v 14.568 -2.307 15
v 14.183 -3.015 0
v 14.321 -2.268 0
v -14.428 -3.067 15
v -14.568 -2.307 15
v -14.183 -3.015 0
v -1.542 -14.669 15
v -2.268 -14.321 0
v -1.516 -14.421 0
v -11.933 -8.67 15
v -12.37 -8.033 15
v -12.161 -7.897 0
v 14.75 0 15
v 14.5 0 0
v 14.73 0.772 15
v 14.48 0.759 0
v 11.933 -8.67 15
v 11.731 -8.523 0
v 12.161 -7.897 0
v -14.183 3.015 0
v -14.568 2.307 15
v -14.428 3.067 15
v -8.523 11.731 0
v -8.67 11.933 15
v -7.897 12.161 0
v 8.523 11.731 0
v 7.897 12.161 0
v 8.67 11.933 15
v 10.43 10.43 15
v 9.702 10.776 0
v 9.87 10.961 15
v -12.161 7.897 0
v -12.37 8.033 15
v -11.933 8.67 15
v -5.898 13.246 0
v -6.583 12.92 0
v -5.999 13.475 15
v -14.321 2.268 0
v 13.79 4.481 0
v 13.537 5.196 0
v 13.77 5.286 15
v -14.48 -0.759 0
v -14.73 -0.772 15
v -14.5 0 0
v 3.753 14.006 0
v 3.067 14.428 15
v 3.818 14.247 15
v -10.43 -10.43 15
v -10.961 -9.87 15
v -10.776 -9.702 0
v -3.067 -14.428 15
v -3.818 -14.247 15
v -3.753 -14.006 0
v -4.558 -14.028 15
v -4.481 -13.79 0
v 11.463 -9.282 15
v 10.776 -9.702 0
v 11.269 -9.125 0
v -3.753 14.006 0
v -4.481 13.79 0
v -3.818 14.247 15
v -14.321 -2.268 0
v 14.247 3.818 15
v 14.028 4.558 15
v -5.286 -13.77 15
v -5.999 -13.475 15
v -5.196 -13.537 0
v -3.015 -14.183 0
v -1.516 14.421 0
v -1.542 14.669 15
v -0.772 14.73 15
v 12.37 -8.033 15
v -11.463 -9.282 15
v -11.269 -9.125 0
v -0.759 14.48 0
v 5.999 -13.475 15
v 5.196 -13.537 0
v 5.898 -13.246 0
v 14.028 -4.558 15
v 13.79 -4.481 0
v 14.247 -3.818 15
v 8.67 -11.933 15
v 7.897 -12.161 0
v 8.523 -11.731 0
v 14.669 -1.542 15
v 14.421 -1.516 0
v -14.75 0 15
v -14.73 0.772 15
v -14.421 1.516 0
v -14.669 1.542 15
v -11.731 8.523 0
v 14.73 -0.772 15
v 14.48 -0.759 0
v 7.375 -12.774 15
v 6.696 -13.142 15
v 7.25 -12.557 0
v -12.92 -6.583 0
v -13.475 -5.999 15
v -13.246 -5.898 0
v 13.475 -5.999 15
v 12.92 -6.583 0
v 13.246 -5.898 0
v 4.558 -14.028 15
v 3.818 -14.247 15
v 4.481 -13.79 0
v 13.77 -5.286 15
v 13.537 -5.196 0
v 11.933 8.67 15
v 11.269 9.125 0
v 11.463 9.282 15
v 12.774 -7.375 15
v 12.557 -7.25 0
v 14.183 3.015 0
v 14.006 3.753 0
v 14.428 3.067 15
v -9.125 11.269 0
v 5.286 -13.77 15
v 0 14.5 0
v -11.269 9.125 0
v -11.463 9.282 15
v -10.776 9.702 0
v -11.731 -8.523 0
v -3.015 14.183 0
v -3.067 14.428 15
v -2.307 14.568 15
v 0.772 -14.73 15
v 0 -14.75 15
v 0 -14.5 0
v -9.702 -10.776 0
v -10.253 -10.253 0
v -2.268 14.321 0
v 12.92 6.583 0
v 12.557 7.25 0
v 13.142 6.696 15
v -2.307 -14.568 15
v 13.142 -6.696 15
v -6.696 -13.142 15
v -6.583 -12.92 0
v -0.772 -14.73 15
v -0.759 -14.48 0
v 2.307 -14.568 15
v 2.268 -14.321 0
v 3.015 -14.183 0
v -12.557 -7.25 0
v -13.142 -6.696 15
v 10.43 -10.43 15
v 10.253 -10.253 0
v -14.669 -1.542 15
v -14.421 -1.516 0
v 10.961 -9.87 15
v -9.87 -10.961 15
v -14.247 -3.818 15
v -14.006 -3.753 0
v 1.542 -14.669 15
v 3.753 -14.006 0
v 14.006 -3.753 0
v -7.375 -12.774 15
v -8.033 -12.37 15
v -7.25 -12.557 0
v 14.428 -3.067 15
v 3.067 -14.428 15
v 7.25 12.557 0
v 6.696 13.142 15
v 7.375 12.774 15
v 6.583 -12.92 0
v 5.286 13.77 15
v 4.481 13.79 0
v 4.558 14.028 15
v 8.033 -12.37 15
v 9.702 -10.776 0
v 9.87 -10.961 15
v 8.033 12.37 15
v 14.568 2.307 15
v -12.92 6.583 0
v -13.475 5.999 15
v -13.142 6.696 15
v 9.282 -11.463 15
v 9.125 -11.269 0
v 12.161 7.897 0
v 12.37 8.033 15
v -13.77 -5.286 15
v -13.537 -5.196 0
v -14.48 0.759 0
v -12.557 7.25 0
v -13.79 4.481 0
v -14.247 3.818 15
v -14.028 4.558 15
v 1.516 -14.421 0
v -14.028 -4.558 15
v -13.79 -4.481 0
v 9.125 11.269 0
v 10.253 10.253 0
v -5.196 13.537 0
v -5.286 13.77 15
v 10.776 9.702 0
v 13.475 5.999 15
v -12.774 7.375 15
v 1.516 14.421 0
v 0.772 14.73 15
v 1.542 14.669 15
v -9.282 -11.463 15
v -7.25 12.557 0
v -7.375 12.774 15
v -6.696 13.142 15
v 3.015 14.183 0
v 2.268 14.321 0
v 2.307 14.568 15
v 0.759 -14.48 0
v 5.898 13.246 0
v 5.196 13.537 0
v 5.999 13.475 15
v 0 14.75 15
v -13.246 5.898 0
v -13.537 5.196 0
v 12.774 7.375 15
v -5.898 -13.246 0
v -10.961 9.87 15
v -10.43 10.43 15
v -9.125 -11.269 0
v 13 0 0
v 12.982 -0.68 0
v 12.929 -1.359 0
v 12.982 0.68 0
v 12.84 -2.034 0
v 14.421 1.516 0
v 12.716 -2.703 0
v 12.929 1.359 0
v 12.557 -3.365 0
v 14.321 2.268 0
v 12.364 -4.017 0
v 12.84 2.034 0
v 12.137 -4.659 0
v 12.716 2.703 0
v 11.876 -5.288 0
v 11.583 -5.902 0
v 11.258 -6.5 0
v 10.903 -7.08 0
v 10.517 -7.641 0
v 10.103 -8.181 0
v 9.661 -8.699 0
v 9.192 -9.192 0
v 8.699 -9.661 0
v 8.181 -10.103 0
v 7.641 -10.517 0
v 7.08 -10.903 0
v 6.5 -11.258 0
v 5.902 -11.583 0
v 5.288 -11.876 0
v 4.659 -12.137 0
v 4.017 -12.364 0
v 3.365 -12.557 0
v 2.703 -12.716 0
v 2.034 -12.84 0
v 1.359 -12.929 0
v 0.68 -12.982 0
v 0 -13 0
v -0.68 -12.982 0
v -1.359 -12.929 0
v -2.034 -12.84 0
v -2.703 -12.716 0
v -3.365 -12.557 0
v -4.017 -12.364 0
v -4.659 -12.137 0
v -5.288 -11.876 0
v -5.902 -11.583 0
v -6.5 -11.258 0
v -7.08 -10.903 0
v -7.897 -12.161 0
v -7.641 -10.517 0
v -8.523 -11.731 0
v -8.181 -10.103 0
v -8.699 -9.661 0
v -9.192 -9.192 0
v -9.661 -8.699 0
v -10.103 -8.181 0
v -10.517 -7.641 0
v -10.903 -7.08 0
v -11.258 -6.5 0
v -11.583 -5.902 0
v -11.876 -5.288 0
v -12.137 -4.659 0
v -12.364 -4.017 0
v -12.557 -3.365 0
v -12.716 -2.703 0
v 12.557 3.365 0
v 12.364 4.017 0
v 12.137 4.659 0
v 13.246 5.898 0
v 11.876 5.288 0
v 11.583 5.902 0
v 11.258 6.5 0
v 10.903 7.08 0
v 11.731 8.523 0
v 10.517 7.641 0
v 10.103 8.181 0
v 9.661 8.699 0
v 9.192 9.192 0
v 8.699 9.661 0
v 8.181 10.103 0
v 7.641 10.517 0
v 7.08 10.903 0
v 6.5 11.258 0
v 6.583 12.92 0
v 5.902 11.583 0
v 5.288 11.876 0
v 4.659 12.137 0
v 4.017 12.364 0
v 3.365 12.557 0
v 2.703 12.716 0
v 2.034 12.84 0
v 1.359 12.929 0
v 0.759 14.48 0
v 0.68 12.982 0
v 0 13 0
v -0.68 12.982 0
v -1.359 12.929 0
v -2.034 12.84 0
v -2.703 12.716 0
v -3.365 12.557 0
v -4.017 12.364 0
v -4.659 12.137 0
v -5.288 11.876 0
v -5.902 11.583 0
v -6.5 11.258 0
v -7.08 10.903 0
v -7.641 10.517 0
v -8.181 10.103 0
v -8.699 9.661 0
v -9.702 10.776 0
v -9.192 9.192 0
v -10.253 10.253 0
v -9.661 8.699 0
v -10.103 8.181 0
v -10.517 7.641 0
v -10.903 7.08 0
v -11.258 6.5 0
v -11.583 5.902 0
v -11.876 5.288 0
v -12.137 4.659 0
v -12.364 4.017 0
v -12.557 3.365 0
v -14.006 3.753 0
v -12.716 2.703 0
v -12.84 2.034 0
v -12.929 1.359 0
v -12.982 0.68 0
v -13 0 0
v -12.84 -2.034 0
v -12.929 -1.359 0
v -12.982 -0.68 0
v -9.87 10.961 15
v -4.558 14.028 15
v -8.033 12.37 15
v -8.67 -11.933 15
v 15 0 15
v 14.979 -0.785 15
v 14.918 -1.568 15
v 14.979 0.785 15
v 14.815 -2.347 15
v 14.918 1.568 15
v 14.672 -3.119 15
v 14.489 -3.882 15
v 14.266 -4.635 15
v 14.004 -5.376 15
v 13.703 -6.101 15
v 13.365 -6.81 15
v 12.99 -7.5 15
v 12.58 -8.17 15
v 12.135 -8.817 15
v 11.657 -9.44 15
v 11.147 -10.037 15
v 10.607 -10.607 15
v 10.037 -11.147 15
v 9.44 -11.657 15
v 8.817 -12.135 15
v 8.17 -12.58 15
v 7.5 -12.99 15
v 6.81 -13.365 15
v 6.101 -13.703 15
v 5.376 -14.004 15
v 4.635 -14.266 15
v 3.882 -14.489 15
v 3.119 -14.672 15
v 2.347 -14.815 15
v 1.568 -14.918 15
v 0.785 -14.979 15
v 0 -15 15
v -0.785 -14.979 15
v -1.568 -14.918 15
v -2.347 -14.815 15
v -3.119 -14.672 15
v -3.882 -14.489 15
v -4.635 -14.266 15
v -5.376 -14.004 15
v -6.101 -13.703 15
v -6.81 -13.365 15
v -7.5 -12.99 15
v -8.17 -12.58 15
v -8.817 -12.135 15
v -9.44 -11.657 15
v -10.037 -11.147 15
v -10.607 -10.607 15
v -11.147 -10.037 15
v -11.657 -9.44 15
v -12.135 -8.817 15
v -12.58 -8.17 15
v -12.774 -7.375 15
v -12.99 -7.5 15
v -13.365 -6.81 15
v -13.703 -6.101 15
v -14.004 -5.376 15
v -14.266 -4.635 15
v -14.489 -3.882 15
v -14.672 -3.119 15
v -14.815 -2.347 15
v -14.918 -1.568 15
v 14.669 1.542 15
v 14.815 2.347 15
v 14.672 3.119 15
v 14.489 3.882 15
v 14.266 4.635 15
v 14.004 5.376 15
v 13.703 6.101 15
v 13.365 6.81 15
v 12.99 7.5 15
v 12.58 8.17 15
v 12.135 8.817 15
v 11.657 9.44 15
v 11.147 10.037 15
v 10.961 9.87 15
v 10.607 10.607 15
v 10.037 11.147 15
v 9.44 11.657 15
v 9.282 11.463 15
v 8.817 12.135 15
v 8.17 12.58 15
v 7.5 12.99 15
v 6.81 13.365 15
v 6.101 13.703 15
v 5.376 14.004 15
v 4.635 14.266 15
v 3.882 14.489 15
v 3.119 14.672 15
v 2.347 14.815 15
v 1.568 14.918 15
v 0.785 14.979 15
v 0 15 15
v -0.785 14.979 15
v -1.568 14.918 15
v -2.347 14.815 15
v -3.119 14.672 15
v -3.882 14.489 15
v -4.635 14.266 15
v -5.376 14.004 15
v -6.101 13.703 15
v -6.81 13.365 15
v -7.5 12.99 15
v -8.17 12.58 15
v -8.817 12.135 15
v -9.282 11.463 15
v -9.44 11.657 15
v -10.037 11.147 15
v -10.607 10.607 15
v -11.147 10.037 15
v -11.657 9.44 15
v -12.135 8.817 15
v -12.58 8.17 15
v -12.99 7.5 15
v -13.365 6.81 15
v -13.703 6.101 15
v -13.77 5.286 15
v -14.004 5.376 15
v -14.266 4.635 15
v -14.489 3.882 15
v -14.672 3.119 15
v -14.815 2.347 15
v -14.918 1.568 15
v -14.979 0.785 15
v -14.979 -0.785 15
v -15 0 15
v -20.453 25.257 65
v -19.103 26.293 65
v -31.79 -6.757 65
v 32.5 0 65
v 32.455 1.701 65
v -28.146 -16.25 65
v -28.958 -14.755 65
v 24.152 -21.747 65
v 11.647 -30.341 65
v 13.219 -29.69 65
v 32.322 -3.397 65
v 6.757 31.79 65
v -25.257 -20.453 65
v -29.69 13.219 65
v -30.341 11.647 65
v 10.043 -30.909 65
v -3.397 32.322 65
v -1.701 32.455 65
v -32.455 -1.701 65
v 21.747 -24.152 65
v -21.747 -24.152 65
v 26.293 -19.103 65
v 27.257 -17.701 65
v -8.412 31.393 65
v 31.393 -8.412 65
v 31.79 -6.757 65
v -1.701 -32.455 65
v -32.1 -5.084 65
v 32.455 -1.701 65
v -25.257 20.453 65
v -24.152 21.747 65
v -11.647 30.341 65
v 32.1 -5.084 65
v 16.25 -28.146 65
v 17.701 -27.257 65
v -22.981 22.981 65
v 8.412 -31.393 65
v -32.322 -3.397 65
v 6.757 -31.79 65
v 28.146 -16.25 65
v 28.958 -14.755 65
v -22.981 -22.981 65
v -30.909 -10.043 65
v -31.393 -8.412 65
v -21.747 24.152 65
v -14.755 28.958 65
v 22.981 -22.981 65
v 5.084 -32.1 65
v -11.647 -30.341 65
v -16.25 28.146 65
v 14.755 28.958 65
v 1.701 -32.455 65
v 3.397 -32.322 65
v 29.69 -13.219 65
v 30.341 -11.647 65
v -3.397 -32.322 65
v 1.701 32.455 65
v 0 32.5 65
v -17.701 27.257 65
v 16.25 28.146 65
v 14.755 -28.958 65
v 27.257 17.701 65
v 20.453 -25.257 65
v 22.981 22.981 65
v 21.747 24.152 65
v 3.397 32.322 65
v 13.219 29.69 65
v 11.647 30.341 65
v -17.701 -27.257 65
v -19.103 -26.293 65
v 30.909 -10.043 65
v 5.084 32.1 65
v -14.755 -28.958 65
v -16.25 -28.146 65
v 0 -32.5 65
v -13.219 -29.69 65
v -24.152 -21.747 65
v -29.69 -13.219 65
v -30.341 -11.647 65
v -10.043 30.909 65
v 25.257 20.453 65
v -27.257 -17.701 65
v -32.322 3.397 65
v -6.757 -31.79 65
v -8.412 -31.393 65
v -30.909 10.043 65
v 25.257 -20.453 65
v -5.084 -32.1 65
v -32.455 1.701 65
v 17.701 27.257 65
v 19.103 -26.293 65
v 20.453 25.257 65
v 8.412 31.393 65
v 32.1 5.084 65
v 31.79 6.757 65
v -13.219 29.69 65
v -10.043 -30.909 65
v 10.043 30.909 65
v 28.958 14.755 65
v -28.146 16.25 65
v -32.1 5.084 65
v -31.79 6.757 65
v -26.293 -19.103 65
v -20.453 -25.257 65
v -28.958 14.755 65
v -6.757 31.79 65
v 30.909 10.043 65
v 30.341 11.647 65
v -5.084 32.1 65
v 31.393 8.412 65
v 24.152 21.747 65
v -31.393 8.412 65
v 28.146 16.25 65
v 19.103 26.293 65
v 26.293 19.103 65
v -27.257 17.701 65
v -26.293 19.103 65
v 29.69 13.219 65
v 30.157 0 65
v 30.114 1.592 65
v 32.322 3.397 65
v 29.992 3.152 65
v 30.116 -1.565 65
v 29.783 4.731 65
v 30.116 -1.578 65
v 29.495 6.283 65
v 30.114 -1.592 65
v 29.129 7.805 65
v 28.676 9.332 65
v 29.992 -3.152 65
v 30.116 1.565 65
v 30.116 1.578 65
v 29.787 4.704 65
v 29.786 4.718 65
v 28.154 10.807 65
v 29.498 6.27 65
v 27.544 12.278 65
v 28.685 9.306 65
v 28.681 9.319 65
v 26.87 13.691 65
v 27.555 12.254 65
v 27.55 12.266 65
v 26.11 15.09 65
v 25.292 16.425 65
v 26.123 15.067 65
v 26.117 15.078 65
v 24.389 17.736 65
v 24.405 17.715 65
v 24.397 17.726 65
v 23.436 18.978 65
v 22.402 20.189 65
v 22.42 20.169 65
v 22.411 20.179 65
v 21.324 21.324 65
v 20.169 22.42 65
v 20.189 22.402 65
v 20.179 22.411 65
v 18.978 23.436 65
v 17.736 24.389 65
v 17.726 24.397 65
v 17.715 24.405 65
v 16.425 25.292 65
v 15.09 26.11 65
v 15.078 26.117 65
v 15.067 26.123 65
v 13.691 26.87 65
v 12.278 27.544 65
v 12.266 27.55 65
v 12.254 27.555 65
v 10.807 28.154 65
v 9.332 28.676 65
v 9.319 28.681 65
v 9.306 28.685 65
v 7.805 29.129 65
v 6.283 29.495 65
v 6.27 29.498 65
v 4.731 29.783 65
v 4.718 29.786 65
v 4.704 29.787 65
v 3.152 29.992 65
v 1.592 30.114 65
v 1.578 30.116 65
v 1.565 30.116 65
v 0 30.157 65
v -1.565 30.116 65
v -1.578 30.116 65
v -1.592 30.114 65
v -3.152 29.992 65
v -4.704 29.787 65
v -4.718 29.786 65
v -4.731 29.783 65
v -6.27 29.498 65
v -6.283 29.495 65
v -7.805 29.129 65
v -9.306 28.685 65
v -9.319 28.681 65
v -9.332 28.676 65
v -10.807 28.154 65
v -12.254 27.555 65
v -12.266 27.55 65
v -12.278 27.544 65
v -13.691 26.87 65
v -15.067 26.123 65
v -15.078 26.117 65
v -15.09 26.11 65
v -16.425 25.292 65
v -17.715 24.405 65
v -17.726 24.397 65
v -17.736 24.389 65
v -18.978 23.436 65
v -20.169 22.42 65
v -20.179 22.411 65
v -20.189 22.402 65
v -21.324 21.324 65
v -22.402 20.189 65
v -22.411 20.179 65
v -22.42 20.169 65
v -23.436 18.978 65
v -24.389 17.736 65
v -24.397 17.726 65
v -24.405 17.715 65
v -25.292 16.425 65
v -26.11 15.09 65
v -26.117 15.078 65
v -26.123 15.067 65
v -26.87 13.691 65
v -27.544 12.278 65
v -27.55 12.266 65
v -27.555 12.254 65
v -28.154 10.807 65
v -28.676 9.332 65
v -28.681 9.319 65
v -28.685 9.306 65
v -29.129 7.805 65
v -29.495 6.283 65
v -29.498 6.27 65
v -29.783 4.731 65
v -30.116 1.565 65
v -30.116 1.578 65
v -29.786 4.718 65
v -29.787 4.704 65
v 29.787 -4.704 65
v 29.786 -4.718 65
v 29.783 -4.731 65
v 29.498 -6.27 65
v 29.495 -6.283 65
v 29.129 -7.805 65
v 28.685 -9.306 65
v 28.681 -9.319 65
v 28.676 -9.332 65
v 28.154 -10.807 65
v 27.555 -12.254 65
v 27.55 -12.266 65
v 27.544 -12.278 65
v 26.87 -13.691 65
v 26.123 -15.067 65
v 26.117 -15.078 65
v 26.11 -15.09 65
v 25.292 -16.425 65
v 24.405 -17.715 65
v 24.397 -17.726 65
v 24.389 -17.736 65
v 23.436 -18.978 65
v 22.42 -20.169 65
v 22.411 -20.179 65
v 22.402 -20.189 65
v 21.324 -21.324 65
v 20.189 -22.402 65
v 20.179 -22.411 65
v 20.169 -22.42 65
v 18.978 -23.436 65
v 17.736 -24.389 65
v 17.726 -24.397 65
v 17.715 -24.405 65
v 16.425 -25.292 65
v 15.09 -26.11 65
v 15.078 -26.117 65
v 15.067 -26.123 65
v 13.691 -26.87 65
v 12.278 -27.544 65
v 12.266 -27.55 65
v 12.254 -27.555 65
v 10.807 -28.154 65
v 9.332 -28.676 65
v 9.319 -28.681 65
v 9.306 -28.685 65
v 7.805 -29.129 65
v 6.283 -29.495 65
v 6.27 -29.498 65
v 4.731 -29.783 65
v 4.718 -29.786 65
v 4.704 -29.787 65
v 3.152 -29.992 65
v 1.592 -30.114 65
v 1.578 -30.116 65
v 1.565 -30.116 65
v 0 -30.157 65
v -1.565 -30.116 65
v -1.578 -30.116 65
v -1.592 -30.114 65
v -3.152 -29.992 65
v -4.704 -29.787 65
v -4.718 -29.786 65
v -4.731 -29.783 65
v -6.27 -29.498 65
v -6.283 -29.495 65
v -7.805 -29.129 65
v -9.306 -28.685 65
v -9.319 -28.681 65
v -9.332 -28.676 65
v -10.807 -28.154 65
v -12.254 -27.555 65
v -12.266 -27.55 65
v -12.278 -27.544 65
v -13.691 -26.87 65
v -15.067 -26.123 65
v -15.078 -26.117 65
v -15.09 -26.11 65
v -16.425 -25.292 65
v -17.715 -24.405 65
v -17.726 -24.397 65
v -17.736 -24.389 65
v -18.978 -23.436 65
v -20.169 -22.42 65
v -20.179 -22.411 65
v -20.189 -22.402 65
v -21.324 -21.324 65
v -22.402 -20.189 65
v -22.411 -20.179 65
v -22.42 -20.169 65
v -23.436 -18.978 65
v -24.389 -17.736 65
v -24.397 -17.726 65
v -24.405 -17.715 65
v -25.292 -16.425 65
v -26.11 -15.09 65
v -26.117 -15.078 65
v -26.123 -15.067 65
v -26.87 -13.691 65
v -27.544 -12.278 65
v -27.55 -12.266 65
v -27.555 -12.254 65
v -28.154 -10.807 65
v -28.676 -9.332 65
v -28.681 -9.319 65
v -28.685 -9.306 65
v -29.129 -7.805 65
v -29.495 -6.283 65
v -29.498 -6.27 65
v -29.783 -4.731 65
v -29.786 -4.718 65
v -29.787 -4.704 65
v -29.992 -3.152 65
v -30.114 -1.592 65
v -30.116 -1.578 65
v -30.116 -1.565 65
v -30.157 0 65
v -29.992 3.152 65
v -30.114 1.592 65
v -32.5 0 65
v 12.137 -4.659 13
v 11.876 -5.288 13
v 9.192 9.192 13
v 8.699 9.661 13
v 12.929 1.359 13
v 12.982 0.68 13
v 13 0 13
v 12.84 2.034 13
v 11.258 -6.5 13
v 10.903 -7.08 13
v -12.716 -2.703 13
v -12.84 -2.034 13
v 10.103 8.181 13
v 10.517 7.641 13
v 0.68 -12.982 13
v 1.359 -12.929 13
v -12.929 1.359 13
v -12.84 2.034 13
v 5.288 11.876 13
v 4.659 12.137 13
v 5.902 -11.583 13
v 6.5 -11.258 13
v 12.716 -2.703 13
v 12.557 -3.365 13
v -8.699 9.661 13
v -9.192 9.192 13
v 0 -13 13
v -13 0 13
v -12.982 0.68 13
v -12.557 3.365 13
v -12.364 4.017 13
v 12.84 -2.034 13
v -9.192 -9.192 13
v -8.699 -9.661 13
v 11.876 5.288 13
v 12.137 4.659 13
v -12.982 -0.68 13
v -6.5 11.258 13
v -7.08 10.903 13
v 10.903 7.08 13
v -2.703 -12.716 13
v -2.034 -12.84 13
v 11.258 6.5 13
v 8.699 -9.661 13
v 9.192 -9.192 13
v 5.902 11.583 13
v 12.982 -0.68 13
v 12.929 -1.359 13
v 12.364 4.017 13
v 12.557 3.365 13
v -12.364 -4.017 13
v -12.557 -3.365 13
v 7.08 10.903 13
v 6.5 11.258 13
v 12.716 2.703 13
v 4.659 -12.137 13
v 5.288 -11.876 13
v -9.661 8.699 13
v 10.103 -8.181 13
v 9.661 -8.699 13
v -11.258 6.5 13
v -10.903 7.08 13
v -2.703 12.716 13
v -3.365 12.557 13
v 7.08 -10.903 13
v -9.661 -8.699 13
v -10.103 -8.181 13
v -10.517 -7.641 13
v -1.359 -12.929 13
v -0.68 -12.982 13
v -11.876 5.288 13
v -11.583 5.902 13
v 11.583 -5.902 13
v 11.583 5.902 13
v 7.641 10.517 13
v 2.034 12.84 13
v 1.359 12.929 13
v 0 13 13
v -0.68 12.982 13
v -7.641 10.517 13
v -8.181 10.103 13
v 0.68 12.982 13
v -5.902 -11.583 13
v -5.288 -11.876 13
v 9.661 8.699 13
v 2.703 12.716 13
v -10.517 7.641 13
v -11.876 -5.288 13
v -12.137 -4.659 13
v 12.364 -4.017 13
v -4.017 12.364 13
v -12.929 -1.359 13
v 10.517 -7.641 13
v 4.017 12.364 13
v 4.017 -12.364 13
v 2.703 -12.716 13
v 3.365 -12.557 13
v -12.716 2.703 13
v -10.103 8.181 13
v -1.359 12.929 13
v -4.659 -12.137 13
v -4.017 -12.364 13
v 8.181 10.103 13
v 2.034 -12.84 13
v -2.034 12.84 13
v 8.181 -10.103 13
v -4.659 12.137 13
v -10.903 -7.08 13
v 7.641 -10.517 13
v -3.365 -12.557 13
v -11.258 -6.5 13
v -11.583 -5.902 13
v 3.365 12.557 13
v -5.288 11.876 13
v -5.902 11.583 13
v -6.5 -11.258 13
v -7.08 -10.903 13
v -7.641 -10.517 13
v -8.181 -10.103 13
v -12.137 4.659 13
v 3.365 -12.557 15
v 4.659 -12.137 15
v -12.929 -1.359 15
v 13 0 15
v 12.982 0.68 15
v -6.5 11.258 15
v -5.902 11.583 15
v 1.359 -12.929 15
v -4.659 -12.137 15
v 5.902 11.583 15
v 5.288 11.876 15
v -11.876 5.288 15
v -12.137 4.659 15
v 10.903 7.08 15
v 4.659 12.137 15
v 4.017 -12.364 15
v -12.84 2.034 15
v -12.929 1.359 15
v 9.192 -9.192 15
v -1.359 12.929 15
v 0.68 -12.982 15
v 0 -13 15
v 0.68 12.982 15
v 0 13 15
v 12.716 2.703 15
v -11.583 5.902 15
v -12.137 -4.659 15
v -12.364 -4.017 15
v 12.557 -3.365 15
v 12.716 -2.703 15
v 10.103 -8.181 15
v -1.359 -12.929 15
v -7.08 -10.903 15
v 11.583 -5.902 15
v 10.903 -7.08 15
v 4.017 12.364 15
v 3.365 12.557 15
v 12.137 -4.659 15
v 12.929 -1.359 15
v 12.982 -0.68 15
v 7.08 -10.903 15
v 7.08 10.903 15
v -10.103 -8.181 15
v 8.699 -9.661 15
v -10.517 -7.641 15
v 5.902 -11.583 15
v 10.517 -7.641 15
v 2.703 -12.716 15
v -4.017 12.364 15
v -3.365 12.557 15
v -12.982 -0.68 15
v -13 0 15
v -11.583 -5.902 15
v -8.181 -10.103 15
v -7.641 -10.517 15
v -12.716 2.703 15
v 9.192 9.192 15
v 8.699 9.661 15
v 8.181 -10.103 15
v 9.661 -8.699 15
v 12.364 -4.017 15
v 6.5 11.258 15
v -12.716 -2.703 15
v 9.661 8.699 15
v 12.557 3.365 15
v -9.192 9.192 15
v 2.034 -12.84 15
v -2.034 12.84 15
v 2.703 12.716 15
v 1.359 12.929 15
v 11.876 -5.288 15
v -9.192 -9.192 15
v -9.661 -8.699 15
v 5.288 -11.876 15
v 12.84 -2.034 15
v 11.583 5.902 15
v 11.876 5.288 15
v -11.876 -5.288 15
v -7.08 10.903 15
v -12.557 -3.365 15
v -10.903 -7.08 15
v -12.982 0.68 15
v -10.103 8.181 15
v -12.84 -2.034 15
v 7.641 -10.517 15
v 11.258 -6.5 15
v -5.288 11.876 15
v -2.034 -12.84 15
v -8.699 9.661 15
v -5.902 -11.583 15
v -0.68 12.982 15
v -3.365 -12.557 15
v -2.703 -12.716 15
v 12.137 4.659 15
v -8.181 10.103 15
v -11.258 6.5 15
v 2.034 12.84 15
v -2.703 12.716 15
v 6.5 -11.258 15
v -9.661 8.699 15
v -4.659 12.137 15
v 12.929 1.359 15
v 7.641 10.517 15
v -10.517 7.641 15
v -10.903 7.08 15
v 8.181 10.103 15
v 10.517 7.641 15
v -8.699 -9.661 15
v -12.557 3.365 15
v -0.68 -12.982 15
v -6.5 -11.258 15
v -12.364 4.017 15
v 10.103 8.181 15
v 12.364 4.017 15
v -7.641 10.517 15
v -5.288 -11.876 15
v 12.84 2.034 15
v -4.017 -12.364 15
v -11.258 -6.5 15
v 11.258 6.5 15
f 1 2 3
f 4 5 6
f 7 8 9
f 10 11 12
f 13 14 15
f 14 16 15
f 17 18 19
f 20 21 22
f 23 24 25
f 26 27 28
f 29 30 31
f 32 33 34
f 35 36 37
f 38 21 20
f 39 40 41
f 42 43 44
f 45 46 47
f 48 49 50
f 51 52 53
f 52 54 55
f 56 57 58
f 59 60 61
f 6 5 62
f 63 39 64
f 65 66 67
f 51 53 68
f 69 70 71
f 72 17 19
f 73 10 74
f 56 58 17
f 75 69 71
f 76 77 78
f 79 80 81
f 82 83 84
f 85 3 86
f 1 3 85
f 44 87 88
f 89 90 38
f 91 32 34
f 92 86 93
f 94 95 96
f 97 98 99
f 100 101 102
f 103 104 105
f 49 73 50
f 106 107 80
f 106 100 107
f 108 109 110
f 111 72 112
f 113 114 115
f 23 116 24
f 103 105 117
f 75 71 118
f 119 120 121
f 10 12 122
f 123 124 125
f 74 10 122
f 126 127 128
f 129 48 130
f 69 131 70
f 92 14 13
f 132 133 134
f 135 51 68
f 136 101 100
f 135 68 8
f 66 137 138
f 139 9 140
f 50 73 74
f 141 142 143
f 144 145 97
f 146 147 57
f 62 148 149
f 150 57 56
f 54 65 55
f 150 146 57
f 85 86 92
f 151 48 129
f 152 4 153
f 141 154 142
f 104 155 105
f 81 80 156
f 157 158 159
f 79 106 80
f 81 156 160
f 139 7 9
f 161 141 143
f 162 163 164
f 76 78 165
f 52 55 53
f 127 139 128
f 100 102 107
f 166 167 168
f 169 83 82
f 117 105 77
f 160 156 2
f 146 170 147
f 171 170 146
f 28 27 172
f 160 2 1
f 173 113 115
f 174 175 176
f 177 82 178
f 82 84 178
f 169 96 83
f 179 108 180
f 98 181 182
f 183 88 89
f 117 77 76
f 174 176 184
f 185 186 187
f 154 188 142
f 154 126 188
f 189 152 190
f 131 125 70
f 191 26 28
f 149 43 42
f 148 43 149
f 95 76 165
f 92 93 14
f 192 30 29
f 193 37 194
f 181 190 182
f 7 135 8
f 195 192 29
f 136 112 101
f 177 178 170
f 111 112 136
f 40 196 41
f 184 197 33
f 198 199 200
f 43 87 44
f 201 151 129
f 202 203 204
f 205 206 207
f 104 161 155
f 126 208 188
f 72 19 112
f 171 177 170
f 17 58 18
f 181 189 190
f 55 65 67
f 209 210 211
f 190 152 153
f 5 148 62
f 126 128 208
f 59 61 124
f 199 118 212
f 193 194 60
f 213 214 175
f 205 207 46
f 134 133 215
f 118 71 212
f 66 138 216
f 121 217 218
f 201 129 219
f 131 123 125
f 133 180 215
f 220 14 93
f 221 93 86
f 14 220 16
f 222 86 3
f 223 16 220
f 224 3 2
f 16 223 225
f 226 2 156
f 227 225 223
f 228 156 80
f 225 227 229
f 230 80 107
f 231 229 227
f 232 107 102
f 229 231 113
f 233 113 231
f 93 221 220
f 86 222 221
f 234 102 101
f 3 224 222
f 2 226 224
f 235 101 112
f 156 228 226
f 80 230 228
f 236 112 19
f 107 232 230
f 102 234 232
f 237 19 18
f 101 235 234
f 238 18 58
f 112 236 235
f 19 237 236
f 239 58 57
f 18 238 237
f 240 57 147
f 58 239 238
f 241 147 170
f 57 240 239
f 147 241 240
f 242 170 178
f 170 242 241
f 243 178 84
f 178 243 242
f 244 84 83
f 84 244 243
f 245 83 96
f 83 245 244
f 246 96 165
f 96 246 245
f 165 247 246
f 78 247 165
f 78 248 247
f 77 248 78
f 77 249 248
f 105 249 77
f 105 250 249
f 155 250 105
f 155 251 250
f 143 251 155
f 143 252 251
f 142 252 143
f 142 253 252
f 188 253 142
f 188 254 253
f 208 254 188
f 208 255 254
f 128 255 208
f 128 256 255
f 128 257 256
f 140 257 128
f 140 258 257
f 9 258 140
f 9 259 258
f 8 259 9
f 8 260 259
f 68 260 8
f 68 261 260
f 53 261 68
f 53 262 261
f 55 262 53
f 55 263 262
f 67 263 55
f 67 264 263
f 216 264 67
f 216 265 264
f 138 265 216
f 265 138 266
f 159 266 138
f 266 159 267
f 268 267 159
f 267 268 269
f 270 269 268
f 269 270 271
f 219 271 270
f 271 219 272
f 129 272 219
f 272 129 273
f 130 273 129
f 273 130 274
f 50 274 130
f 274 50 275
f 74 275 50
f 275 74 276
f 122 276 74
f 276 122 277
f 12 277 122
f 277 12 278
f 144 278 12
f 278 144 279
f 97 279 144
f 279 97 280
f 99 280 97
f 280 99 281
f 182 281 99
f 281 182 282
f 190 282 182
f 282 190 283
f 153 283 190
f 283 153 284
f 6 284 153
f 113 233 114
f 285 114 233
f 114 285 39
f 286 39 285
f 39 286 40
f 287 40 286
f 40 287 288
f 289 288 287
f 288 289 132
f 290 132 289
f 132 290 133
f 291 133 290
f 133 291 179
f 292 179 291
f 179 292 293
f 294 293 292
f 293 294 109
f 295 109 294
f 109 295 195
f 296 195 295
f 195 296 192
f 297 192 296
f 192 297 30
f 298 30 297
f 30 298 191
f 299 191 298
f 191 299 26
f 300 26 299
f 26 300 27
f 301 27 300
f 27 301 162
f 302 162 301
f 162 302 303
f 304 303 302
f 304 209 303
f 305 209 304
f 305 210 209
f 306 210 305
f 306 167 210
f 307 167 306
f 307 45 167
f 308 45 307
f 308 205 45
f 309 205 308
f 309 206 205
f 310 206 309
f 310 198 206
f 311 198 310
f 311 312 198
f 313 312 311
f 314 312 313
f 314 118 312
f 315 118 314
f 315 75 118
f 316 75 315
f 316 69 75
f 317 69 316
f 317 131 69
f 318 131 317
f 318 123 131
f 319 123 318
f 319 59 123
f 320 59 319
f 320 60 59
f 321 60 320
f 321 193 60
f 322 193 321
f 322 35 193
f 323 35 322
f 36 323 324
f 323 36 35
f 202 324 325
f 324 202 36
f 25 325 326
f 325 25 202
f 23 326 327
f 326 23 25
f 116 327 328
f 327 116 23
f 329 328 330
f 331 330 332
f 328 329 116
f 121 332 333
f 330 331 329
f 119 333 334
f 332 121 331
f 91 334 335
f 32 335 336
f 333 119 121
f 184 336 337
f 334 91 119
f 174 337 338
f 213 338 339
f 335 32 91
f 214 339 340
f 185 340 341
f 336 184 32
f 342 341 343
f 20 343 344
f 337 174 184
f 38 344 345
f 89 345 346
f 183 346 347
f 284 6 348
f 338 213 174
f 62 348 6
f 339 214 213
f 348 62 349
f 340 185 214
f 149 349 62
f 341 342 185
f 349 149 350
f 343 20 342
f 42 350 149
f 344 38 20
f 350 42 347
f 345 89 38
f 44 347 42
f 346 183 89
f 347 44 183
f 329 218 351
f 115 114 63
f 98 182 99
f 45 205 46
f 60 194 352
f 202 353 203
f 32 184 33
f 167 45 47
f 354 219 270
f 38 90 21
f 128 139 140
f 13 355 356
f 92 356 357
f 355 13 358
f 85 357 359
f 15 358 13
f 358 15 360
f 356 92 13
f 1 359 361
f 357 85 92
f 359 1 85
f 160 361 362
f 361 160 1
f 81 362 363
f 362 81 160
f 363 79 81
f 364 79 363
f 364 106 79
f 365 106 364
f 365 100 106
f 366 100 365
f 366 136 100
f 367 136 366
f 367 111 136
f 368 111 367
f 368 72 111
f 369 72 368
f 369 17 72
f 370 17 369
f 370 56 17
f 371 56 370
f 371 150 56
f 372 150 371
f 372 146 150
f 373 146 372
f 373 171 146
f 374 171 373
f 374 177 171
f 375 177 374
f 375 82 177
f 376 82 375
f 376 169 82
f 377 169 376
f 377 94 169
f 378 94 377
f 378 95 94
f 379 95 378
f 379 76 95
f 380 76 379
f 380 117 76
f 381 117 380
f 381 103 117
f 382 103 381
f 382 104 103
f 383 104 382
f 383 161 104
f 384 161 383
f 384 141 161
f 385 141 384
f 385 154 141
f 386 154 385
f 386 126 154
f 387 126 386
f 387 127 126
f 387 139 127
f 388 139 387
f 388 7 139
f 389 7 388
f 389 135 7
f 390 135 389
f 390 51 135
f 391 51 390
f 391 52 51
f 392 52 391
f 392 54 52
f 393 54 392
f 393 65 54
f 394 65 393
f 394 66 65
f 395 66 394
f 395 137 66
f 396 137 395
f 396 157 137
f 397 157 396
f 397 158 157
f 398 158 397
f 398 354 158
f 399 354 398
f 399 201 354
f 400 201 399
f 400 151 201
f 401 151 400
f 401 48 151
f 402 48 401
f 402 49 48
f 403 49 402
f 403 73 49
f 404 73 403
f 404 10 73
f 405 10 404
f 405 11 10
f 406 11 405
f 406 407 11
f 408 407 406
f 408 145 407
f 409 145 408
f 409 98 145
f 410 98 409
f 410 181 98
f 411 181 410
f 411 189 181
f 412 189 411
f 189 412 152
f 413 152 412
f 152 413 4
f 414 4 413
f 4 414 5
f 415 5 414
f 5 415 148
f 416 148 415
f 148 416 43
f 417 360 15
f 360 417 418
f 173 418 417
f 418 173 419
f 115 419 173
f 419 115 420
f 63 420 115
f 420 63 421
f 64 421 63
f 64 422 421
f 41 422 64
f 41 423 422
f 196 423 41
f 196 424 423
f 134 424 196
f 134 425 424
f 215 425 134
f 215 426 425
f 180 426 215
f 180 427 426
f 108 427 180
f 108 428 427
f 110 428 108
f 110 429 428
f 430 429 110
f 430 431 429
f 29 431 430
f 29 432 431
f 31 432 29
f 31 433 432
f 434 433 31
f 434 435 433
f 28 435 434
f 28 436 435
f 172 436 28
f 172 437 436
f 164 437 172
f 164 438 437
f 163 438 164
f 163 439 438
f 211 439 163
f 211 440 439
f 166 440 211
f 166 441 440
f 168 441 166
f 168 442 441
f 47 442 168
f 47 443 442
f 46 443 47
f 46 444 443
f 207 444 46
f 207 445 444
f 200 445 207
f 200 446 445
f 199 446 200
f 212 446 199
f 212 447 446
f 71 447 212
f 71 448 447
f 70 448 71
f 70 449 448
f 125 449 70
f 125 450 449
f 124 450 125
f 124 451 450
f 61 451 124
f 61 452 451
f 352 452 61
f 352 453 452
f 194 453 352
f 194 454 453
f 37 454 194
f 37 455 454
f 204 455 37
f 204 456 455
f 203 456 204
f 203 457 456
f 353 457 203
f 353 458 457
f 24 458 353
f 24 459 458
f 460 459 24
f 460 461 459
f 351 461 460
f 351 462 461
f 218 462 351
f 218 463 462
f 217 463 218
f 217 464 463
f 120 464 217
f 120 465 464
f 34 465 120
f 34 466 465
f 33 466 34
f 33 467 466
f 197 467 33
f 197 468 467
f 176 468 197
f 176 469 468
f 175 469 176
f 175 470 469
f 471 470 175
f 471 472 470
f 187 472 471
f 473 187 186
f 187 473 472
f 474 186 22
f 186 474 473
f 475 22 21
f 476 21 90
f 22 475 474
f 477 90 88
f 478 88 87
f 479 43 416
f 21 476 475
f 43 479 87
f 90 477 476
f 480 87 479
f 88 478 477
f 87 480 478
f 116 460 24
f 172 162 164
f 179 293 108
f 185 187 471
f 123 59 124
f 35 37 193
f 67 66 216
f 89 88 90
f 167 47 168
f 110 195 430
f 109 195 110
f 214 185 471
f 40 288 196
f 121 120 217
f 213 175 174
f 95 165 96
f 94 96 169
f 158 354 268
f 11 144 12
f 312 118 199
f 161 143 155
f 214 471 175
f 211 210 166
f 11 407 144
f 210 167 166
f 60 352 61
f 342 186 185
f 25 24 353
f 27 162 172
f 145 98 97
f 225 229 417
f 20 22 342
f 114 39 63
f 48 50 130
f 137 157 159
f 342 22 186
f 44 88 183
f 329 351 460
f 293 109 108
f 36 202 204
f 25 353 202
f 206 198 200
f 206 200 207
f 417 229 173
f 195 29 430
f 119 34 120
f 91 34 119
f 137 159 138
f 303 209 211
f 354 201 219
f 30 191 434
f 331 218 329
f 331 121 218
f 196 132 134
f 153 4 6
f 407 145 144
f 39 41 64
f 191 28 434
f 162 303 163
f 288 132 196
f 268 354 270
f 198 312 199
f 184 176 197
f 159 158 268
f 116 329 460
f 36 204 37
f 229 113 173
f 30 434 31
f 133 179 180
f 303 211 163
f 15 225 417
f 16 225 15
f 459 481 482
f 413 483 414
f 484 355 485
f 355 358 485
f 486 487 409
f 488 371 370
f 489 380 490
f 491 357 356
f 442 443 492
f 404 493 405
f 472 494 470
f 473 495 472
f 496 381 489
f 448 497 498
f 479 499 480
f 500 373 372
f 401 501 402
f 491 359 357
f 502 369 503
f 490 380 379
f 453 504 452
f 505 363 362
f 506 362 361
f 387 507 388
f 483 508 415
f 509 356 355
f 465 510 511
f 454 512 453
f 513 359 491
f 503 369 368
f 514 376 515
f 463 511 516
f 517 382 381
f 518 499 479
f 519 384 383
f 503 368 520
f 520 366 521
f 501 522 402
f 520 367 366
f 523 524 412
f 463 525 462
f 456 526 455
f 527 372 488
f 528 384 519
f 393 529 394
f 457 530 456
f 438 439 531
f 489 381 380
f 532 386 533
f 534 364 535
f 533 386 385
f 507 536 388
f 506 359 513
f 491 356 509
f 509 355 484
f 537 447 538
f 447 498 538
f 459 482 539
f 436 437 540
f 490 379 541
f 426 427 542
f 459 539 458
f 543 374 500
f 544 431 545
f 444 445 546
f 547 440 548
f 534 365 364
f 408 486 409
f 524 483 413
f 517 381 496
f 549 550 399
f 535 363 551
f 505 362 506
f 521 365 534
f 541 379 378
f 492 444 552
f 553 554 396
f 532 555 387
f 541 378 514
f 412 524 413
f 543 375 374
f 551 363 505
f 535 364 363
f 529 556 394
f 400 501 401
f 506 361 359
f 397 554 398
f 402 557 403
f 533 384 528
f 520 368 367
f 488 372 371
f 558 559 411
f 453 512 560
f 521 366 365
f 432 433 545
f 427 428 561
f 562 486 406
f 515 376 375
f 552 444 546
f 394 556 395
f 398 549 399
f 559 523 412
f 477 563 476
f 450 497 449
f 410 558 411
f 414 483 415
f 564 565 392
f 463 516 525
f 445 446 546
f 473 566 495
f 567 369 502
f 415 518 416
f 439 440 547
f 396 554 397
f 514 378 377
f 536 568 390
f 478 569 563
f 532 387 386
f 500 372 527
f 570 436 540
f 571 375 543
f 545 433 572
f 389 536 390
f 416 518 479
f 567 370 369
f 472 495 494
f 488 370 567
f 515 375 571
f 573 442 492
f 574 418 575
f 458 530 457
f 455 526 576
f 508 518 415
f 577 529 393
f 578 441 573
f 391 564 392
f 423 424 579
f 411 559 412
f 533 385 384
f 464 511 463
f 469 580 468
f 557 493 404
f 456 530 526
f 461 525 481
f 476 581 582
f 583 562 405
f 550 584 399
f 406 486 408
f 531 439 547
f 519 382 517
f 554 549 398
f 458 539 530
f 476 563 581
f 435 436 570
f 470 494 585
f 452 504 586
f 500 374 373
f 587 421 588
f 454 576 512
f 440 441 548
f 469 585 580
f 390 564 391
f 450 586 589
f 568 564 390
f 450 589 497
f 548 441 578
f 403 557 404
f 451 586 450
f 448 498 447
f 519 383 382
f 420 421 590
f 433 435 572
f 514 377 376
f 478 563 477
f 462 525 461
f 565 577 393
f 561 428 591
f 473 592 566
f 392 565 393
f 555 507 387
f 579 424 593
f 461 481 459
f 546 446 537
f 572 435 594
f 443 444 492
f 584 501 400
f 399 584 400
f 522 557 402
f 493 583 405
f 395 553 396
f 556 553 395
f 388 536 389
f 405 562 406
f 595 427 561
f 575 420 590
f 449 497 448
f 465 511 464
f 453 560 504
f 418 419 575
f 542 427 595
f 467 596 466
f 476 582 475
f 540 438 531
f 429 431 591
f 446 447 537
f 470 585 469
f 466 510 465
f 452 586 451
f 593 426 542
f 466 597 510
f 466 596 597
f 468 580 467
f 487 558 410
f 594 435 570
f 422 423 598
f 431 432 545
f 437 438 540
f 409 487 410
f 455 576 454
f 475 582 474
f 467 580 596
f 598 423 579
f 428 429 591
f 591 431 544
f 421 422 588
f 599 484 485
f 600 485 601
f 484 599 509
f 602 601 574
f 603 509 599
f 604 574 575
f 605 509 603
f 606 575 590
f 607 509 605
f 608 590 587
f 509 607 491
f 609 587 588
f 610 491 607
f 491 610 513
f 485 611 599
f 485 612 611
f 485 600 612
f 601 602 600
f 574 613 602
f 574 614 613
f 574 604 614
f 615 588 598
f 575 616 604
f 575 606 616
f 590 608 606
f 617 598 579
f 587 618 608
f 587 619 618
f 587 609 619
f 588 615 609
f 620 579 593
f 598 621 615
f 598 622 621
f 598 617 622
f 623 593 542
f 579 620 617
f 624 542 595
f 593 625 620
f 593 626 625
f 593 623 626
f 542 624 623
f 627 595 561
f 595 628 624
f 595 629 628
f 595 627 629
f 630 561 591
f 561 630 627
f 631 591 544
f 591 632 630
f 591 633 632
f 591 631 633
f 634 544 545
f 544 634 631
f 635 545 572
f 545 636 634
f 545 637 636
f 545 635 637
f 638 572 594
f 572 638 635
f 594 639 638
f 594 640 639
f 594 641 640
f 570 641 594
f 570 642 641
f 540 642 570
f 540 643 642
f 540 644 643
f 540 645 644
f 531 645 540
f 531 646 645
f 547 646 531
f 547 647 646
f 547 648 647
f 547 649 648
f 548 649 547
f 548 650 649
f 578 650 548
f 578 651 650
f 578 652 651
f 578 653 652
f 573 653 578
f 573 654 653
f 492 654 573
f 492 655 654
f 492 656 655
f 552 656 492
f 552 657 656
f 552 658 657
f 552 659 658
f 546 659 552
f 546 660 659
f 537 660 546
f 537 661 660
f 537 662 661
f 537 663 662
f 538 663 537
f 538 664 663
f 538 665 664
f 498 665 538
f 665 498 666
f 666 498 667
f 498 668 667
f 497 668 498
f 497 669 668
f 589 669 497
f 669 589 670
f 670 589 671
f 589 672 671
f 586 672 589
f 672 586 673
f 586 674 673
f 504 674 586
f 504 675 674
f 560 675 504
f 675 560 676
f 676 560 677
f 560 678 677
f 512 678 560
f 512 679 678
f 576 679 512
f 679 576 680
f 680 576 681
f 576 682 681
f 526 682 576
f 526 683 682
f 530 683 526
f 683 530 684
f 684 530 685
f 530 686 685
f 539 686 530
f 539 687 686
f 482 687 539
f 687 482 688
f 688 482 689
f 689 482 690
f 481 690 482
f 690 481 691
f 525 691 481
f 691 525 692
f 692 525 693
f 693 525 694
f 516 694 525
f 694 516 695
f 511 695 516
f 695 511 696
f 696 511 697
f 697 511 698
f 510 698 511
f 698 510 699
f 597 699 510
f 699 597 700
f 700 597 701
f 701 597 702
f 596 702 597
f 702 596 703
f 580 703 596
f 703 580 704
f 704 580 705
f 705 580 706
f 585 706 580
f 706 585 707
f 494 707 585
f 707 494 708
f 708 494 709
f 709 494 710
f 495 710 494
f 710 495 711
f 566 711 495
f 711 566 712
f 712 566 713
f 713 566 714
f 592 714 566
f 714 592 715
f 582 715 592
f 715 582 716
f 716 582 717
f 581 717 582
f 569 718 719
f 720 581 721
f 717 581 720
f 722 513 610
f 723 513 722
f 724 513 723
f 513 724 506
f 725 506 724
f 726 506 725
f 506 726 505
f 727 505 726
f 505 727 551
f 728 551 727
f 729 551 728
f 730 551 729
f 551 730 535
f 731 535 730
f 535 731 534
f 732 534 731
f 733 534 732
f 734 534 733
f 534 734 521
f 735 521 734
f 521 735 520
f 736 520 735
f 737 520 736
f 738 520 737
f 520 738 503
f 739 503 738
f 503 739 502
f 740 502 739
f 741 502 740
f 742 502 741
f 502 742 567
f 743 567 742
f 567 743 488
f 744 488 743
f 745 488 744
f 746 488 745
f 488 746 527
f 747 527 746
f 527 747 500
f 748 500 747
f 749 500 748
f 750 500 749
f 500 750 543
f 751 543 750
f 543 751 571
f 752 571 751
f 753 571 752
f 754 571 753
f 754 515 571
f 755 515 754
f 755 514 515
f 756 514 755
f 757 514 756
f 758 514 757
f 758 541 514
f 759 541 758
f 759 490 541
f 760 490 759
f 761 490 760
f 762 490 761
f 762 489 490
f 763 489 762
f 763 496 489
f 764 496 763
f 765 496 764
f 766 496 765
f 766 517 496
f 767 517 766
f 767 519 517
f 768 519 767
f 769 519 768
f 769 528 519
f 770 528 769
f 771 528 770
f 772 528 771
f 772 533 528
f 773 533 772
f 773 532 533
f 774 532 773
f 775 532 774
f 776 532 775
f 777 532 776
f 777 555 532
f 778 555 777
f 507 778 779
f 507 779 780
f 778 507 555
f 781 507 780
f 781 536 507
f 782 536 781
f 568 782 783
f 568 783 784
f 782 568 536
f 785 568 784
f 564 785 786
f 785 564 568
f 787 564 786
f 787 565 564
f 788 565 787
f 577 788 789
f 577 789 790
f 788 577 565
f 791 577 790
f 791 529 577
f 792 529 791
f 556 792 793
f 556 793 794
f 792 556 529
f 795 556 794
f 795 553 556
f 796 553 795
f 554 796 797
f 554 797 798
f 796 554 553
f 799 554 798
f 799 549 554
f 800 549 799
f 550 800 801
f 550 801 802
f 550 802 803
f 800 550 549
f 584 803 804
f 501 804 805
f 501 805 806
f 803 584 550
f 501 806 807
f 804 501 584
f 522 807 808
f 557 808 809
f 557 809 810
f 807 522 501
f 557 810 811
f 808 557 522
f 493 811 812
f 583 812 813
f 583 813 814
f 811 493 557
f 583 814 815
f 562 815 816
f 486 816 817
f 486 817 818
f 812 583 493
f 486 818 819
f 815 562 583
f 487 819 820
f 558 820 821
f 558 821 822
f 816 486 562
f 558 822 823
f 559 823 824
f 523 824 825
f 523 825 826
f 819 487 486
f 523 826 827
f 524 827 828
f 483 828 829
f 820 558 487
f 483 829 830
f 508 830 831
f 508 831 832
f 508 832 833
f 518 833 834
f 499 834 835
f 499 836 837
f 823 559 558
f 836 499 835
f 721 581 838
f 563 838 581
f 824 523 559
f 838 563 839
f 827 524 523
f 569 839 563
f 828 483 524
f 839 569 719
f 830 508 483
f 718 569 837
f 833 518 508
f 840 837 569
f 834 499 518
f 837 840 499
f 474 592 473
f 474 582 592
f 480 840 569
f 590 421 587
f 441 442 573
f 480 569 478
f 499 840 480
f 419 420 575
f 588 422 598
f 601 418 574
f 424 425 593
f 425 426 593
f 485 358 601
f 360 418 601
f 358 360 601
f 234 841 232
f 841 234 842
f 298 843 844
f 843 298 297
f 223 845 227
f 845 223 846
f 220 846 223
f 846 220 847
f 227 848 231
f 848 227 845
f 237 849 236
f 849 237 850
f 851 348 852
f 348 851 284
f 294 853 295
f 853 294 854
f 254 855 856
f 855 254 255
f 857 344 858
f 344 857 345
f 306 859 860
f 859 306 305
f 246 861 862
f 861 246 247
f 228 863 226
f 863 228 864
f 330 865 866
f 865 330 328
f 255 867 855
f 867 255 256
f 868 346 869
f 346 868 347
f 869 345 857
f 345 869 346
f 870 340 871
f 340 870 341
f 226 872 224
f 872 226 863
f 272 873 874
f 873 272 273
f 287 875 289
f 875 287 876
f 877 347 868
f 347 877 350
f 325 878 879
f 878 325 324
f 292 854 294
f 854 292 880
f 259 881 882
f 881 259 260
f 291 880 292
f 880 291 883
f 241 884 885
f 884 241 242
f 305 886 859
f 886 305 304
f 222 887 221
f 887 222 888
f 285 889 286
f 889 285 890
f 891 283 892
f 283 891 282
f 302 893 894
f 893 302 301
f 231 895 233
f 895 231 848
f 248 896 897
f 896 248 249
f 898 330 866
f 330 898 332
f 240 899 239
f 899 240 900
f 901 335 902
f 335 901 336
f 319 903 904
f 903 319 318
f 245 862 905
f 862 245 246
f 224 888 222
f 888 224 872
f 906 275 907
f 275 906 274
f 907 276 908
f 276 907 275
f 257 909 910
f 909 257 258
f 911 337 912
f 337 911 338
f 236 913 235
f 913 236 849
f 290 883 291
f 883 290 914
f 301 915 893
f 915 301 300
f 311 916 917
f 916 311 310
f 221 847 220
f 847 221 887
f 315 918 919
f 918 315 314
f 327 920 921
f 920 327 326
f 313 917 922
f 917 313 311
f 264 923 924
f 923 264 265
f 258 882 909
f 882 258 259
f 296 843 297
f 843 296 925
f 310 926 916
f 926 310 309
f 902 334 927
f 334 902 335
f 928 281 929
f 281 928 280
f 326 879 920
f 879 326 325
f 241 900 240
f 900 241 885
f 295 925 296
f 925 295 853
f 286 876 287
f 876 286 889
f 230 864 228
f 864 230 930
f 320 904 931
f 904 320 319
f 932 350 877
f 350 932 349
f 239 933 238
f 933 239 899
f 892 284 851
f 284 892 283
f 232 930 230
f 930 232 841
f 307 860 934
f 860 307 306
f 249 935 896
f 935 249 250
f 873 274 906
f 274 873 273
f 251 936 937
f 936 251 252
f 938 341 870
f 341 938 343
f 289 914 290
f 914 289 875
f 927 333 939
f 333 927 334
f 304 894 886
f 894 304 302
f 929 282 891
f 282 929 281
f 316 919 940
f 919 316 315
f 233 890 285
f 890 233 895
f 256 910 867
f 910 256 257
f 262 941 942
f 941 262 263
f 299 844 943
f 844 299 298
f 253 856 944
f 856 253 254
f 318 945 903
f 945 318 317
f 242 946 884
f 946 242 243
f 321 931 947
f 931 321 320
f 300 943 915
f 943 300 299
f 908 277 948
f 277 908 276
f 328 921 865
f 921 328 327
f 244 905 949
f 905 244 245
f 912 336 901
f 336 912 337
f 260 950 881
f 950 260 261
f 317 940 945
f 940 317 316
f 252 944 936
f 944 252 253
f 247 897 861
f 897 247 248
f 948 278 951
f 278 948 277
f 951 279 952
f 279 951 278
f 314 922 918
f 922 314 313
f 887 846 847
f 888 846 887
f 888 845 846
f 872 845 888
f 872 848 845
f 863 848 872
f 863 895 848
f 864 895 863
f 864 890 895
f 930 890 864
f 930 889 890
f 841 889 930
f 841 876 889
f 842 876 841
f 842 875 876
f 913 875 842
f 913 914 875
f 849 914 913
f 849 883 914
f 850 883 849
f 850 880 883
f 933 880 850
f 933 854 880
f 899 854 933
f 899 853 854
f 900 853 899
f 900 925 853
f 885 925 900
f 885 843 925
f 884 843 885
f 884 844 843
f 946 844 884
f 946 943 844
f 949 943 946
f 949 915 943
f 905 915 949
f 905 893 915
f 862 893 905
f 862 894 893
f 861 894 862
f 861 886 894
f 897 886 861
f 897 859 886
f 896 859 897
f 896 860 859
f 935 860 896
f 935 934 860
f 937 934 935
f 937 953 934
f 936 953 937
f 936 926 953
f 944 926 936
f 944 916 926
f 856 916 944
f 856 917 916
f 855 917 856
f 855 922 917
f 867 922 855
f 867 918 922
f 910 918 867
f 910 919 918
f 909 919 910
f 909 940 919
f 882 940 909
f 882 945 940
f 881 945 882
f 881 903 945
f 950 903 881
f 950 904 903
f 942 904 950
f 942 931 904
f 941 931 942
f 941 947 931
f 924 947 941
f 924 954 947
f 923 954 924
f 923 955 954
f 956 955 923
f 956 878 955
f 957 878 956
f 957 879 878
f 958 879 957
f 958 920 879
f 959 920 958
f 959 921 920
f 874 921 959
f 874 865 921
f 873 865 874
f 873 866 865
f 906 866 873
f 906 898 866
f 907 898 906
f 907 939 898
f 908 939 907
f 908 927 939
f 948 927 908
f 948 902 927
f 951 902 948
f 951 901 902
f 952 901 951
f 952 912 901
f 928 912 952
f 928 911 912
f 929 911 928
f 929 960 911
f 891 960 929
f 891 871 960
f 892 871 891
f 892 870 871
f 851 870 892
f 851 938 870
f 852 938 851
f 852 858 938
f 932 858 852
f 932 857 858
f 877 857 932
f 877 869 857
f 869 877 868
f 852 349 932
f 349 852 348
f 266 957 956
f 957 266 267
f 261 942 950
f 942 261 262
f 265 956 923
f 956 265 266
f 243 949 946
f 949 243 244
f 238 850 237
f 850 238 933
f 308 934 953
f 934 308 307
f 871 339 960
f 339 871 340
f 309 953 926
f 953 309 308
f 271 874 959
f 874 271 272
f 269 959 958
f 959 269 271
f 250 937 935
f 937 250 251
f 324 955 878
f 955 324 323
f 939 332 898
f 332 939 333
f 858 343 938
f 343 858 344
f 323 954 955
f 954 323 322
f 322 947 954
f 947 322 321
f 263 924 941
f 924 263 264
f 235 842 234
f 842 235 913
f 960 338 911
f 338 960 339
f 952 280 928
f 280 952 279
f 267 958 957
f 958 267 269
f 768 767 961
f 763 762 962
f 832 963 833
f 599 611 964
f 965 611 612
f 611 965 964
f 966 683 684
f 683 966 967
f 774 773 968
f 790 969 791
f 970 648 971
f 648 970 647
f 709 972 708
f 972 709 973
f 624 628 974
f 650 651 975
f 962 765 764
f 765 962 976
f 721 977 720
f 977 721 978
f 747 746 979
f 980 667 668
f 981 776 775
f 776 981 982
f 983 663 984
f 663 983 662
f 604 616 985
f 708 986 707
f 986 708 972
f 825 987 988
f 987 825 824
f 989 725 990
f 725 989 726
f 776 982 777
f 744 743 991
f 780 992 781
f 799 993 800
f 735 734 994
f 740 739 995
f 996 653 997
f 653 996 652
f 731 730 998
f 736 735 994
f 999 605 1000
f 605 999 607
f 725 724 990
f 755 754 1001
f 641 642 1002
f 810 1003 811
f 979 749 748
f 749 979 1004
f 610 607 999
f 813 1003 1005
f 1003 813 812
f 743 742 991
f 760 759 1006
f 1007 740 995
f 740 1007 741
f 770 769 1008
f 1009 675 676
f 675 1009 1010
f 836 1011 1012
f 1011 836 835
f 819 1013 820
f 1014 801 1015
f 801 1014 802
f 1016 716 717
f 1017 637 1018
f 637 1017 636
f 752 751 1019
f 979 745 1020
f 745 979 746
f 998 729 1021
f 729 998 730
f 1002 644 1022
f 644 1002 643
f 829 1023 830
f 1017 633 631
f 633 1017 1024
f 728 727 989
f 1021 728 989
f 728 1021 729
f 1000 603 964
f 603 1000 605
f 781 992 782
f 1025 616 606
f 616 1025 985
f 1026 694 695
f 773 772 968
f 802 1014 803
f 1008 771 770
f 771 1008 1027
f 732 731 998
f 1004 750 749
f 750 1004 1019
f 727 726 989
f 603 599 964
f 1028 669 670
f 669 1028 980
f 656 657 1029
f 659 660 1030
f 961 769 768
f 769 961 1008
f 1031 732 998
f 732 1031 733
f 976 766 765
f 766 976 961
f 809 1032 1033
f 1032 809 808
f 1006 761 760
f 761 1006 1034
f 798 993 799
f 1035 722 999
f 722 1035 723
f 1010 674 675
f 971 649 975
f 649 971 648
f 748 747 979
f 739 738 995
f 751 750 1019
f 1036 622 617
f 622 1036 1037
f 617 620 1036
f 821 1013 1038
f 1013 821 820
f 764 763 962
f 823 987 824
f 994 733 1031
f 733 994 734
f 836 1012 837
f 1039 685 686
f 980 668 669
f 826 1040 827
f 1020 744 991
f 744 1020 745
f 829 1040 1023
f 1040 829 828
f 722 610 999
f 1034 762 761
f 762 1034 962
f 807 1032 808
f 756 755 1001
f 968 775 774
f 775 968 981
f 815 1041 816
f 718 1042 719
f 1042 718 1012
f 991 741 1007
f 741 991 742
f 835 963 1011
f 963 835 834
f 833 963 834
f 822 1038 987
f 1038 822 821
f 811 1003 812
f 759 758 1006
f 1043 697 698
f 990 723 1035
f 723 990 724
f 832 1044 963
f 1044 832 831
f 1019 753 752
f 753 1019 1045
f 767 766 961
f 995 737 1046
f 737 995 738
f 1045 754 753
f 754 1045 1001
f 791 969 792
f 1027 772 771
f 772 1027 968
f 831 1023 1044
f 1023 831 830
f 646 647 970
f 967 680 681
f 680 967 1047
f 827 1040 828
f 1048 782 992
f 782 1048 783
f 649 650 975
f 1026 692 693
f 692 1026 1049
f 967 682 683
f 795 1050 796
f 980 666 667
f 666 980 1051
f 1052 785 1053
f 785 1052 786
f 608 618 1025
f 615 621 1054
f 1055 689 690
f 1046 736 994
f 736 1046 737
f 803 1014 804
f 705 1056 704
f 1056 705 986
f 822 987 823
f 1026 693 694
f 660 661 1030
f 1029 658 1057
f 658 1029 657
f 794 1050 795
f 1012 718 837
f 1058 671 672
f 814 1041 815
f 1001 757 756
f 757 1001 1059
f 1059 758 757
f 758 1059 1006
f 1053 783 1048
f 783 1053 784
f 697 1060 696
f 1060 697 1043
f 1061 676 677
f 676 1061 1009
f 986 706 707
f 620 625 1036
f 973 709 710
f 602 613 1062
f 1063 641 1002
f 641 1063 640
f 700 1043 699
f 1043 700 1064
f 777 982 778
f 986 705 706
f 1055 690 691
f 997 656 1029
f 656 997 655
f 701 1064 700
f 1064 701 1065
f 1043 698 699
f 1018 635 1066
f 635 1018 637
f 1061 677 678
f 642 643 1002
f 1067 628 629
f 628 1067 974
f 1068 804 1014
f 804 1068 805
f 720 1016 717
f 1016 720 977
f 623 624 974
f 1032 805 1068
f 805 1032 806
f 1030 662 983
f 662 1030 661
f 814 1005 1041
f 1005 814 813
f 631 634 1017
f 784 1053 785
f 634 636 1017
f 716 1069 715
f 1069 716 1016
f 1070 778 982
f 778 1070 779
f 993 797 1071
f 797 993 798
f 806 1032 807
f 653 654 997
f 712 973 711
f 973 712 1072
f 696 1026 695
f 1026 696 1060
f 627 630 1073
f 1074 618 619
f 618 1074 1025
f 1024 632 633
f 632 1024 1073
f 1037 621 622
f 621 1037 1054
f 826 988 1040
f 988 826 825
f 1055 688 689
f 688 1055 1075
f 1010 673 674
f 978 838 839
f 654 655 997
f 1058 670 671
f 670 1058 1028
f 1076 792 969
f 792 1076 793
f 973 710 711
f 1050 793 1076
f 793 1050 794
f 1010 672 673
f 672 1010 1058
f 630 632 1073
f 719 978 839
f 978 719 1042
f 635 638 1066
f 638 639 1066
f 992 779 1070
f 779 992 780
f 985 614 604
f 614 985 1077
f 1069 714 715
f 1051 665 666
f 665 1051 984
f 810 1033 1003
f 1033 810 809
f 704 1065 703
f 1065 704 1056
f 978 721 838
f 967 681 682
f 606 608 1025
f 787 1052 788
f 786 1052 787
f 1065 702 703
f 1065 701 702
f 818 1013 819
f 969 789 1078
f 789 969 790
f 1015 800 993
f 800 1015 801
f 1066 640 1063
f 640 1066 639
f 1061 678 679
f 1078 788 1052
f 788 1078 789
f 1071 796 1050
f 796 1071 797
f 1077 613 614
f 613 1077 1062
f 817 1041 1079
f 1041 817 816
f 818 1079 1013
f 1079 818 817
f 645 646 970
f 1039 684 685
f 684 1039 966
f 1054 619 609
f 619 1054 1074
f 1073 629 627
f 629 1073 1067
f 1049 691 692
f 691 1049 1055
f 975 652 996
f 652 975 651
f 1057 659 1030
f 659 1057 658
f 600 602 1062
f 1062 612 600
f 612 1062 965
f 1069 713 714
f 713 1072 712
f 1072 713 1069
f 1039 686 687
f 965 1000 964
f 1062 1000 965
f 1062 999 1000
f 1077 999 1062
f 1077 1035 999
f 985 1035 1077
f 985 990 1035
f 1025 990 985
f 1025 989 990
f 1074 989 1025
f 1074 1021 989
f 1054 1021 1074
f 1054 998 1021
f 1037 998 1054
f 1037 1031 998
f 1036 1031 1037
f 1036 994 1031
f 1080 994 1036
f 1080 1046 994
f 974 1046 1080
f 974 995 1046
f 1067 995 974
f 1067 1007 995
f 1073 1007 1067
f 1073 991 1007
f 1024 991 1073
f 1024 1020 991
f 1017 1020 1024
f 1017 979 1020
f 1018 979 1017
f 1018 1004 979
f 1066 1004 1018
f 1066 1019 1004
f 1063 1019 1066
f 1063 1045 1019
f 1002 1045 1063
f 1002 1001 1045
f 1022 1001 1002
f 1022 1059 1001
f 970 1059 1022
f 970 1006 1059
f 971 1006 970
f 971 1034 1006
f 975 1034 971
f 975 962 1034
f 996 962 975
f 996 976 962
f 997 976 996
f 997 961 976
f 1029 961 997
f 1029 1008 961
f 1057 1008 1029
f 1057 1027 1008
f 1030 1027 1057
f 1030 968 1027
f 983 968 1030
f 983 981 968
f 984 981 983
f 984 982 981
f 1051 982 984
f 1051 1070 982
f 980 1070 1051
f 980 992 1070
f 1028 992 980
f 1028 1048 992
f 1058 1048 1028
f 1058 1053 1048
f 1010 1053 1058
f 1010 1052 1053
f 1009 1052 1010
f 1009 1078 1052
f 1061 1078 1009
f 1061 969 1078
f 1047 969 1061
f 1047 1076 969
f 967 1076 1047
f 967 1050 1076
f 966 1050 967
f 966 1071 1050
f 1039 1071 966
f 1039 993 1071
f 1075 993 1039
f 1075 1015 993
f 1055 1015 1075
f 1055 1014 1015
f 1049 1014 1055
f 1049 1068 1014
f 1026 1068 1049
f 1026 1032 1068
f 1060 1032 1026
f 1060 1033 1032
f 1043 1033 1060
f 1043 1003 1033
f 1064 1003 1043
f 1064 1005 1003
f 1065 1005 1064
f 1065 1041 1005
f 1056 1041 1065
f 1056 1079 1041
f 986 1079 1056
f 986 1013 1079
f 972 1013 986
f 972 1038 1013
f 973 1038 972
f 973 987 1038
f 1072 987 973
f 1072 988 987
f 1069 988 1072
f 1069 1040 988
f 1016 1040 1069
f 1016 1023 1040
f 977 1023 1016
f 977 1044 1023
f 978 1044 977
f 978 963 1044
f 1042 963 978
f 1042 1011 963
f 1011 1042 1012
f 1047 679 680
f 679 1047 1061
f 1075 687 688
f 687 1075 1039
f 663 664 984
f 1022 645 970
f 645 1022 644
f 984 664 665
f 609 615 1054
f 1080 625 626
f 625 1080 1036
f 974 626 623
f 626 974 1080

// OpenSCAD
$fn = 120; // Laatu: 120 tekee erittäin sileän pinnan

// --- MITAT (Muokkaa näitä työntömitan mukaan) ---

// Yläosa (Suppilo)
yla_halkaisija = 65;      // Levein kohta ylhäällä
koko_korkeus = 65;        // Koko kappaleen korkeus

// Alaosa (Lieriömäinen kanta)
ala_halkaisija_runko = 30; // Se kohta, josta kartio alkaa
ala_korkeus = 15;          // Koko suoran alaosan pituus (sisältää huulloksen)

// Huullos (Aivan alin osa)
huullos_halkaisija = 29.5; // Hieman kapeampi kuin runko?
huullos_korkeus = 15;       // Huulloksen korkeus

// Seinämät ja pohja
seina = 2;                 // Muovin paksuus
pohjan_paksuus = 2;        // Välipohjan paksuus (erottaa ylä- ja alareiän)

// ------------------------------------------------

difference() {
    
    // 1. ULKOMUOTO (Plussataan osat yhteen)
    union() {
        // A) Huullos (alin osa)
        // Tehdään pieni viiste (d2 > d1), jotta se ohjautuu koloon helpommin
        cylinder(d1 = huullos_halkaisija - 0.5, d2 = huullos_halkaisija, h = huullos_korkeus);
        
        // B) Alaosan runko (suora osa huulloksen päällä)
        translate([0, 0, huullos_korkeus])
        cylinder(d = ala_halkaisija_runko, h = ala_korkeus - huullos_korkeus);
        
        // C) Yläosa (Kartio)
        // Alkaa alaosan päältä ja levenee ylös
        translate([0, 0, ala_korkeus])
        cylinder(d1 = ala_halkaisija_runko, d2 = yla_halkaisija, h = koko_korkeus - ala_korkeus);
    }

    // 2. SISÄMUOTO (Miinustetaan reiät)
    
    // A) Alareikä (Menee alhaalta ylöspäin)
    // Lasketaan reiän syvyys niin, että väliin jää haluttu pohjan paksuus
    // Kuvien perusteella reikä on suora.
    translate([0,0,-0.1]) // Pieni siirto alaspäin, jotta reikä varmasti puhkeaa
    cylinder(d = ala_halkaisija_runko - (seina*2), h = (ala_korkeus) - pohjan_paksuus + 0.1);
    
    // B) Yläreikä (Suppilo)
    // Alkaa välipohjan päältä ja levenee ylös.
    translate([0, 0, ala_korkeus])
    // d1 on alareikä, d2 on yläreikä. Seinät vähennetään molemmista.
    cylinder(d1 = ala_halkaisija_runko - (seina*2), d2 = yla_halkaisija - (seina*2), h = (koko_korkeus - ala_korkeus) + 1);
}
